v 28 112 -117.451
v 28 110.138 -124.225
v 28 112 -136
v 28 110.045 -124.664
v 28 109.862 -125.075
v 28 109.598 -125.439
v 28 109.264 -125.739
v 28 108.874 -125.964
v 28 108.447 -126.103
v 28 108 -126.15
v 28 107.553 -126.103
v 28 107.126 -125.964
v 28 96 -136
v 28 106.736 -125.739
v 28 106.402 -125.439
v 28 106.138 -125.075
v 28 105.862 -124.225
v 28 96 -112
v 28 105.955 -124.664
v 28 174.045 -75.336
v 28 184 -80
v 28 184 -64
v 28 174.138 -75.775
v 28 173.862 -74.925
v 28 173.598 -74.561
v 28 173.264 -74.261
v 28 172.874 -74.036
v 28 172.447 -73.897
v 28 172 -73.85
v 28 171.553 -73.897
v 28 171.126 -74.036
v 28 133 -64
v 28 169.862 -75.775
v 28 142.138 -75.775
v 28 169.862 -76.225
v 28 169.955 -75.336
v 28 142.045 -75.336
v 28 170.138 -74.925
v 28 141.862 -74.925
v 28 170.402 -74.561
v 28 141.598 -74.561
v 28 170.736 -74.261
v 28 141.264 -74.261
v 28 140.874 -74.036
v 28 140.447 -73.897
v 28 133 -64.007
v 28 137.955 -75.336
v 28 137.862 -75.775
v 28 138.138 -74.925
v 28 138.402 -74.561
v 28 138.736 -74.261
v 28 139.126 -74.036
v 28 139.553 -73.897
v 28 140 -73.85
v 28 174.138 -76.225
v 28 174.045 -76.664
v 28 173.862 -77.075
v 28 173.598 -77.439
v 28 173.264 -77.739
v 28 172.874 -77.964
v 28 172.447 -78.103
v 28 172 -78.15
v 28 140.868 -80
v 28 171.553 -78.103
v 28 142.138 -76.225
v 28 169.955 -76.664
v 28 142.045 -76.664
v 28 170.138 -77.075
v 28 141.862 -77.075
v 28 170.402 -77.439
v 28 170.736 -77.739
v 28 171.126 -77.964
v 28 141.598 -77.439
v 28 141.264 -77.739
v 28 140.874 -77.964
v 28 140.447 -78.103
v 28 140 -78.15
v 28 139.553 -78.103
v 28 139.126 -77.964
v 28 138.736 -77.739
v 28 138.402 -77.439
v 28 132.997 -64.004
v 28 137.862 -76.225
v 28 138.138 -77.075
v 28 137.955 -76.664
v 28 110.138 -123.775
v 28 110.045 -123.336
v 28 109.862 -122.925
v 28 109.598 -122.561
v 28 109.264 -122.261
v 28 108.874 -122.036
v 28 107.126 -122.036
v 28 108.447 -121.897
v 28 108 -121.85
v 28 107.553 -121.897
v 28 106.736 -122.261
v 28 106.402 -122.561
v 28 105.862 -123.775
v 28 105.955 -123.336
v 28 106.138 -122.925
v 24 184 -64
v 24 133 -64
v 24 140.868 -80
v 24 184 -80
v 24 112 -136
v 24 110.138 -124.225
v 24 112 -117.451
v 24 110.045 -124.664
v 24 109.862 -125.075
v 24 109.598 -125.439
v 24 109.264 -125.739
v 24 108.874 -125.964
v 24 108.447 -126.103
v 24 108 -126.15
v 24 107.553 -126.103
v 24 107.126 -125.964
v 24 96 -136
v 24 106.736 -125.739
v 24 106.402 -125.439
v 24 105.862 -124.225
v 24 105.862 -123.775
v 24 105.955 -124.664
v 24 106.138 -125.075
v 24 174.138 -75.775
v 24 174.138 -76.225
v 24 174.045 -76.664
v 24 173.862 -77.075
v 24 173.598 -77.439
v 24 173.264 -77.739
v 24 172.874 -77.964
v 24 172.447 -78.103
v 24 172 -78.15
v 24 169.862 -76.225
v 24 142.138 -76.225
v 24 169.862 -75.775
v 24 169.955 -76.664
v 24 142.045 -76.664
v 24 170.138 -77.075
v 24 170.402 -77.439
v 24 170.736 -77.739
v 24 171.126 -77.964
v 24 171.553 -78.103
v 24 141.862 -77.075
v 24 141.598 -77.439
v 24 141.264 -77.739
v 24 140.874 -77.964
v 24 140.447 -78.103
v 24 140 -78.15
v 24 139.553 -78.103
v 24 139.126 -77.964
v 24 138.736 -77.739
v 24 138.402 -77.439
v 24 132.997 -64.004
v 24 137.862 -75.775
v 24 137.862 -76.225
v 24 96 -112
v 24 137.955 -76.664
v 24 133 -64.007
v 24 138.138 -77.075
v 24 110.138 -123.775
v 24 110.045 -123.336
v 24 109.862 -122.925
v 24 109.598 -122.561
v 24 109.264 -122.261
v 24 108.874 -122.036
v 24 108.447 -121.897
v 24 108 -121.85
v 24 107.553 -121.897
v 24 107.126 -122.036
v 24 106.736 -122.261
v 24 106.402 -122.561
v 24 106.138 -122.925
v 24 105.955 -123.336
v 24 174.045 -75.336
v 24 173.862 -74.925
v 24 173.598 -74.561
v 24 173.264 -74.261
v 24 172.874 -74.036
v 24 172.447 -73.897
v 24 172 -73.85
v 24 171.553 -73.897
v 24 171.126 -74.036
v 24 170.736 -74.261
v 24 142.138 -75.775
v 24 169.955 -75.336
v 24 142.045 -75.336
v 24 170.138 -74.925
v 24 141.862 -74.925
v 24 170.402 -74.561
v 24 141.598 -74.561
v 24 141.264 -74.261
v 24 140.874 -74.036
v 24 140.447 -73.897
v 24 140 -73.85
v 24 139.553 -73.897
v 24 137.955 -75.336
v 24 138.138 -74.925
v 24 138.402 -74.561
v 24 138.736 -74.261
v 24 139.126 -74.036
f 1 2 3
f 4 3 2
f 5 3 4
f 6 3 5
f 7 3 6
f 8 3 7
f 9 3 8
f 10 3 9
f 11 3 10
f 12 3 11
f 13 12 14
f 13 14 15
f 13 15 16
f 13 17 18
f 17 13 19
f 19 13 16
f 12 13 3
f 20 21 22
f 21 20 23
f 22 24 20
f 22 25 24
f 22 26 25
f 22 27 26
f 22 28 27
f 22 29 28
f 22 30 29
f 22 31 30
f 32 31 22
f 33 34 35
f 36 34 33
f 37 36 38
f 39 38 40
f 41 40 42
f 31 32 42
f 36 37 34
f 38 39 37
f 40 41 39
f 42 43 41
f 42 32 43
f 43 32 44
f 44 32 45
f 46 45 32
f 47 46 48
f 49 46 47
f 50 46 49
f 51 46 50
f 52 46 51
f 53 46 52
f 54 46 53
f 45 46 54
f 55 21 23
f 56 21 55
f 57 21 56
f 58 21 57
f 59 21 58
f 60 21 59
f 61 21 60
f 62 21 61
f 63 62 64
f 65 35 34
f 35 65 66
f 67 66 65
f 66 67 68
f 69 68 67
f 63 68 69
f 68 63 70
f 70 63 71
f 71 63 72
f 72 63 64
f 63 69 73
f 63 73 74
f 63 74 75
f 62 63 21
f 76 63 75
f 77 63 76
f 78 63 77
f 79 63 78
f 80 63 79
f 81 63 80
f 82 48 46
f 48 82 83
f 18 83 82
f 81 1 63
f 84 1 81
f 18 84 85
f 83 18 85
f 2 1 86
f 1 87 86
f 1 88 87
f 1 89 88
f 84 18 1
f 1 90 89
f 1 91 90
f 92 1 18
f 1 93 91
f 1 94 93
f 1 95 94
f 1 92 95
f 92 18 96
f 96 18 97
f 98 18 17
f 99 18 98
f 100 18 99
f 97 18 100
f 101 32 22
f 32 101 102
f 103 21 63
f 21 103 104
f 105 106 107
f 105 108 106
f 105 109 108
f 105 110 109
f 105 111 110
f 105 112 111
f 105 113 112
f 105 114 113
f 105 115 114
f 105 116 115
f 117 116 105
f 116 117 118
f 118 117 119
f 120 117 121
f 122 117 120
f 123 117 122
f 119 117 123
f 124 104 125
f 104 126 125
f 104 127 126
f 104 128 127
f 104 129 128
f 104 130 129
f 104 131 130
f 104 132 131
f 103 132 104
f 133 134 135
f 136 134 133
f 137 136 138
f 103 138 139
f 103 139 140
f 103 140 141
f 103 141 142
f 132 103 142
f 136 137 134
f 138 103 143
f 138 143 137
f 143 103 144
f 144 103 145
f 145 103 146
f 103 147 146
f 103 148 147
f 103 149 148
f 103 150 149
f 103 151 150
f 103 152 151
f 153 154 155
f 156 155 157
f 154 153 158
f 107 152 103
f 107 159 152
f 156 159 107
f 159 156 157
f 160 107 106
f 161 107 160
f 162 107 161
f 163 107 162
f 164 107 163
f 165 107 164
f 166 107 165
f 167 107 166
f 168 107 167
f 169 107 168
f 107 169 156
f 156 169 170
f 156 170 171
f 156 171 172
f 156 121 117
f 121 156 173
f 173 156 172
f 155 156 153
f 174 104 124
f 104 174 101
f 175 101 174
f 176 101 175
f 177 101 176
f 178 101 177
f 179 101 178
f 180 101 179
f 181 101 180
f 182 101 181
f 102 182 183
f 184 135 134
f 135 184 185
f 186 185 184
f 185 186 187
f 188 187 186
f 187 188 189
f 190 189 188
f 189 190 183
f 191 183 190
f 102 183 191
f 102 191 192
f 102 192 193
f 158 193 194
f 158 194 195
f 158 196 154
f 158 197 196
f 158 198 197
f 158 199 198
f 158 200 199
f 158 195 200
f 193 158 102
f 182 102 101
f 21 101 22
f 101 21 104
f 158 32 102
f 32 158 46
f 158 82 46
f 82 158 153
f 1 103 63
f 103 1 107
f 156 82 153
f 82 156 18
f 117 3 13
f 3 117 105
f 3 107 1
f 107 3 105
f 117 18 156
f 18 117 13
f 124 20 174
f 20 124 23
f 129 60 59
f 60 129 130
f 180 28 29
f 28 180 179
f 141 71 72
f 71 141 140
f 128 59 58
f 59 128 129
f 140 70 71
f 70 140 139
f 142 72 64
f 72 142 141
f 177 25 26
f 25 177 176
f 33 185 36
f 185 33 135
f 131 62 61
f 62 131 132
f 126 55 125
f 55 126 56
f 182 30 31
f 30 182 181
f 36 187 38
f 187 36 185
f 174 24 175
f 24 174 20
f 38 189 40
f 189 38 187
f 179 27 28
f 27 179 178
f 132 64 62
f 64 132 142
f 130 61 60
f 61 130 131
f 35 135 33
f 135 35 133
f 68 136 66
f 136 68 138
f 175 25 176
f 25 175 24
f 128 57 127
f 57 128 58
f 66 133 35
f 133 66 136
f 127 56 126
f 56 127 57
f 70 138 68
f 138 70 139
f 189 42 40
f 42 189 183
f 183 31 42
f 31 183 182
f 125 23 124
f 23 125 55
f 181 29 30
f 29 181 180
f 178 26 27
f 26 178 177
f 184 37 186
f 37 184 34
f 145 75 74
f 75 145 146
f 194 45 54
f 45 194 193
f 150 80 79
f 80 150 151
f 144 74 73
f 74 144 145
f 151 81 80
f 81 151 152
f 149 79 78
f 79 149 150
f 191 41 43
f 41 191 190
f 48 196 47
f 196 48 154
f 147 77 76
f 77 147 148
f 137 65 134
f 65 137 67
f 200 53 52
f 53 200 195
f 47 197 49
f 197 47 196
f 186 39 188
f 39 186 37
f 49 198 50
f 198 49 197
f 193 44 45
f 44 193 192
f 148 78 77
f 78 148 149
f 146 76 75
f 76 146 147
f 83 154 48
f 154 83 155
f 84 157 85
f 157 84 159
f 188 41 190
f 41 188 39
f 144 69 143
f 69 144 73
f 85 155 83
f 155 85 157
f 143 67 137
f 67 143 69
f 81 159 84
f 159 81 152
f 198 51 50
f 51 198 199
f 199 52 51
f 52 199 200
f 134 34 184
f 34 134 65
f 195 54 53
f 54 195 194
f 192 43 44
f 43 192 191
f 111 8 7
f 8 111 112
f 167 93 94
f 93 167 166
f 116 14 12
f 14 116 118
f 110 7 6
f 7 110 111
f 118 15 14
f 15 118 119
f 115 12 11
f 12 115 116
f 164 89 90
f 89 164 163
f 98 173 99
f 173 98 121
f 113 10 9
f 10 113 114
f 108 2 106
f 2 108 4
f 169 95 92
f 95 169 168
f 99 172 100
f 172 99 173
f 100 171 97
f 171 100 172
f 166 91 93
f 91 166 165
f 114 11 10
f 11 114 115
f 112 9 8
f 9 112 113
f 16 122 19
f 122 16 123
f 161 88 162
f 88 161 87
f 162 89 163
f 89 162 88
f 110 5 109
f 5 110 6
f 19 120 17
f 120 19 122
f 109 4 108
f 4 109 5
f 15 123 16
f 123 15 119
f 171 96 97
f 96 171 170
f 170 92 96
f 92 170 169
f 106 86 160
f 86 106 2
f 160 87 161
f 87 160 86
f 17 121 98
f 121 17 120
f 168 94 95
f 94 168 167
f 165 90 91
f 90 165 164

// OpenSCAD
// right bottom guard rail
//color ("salmon")
difference() {
union() {
    // entrance piece
    translate([24,133,-80])
    cube([4,51,16]);
    
    // angle piece
    translate([24,96,-112])
    rotate([322.374,0,0])
    cube([4,16,60.6]);
    
    // bottom
    translate([24,96,-136])
    cube([4,16,24]);
}
    // far right hole
    translate([-4,172,-76])
    rotate([0,90,0])
    cylinder(r=2.15,60, $fn=30);

    // middle hole
    translate([-4,140,-76])
    rotate([0,90,0])
    cylinder(r=2.15,60, $fn=30);   

    // bottom hole
    translate([-4,108,-124])
    rotate([0,90,0])
    cylinder(r=2.15,60, $fn=30);
}
